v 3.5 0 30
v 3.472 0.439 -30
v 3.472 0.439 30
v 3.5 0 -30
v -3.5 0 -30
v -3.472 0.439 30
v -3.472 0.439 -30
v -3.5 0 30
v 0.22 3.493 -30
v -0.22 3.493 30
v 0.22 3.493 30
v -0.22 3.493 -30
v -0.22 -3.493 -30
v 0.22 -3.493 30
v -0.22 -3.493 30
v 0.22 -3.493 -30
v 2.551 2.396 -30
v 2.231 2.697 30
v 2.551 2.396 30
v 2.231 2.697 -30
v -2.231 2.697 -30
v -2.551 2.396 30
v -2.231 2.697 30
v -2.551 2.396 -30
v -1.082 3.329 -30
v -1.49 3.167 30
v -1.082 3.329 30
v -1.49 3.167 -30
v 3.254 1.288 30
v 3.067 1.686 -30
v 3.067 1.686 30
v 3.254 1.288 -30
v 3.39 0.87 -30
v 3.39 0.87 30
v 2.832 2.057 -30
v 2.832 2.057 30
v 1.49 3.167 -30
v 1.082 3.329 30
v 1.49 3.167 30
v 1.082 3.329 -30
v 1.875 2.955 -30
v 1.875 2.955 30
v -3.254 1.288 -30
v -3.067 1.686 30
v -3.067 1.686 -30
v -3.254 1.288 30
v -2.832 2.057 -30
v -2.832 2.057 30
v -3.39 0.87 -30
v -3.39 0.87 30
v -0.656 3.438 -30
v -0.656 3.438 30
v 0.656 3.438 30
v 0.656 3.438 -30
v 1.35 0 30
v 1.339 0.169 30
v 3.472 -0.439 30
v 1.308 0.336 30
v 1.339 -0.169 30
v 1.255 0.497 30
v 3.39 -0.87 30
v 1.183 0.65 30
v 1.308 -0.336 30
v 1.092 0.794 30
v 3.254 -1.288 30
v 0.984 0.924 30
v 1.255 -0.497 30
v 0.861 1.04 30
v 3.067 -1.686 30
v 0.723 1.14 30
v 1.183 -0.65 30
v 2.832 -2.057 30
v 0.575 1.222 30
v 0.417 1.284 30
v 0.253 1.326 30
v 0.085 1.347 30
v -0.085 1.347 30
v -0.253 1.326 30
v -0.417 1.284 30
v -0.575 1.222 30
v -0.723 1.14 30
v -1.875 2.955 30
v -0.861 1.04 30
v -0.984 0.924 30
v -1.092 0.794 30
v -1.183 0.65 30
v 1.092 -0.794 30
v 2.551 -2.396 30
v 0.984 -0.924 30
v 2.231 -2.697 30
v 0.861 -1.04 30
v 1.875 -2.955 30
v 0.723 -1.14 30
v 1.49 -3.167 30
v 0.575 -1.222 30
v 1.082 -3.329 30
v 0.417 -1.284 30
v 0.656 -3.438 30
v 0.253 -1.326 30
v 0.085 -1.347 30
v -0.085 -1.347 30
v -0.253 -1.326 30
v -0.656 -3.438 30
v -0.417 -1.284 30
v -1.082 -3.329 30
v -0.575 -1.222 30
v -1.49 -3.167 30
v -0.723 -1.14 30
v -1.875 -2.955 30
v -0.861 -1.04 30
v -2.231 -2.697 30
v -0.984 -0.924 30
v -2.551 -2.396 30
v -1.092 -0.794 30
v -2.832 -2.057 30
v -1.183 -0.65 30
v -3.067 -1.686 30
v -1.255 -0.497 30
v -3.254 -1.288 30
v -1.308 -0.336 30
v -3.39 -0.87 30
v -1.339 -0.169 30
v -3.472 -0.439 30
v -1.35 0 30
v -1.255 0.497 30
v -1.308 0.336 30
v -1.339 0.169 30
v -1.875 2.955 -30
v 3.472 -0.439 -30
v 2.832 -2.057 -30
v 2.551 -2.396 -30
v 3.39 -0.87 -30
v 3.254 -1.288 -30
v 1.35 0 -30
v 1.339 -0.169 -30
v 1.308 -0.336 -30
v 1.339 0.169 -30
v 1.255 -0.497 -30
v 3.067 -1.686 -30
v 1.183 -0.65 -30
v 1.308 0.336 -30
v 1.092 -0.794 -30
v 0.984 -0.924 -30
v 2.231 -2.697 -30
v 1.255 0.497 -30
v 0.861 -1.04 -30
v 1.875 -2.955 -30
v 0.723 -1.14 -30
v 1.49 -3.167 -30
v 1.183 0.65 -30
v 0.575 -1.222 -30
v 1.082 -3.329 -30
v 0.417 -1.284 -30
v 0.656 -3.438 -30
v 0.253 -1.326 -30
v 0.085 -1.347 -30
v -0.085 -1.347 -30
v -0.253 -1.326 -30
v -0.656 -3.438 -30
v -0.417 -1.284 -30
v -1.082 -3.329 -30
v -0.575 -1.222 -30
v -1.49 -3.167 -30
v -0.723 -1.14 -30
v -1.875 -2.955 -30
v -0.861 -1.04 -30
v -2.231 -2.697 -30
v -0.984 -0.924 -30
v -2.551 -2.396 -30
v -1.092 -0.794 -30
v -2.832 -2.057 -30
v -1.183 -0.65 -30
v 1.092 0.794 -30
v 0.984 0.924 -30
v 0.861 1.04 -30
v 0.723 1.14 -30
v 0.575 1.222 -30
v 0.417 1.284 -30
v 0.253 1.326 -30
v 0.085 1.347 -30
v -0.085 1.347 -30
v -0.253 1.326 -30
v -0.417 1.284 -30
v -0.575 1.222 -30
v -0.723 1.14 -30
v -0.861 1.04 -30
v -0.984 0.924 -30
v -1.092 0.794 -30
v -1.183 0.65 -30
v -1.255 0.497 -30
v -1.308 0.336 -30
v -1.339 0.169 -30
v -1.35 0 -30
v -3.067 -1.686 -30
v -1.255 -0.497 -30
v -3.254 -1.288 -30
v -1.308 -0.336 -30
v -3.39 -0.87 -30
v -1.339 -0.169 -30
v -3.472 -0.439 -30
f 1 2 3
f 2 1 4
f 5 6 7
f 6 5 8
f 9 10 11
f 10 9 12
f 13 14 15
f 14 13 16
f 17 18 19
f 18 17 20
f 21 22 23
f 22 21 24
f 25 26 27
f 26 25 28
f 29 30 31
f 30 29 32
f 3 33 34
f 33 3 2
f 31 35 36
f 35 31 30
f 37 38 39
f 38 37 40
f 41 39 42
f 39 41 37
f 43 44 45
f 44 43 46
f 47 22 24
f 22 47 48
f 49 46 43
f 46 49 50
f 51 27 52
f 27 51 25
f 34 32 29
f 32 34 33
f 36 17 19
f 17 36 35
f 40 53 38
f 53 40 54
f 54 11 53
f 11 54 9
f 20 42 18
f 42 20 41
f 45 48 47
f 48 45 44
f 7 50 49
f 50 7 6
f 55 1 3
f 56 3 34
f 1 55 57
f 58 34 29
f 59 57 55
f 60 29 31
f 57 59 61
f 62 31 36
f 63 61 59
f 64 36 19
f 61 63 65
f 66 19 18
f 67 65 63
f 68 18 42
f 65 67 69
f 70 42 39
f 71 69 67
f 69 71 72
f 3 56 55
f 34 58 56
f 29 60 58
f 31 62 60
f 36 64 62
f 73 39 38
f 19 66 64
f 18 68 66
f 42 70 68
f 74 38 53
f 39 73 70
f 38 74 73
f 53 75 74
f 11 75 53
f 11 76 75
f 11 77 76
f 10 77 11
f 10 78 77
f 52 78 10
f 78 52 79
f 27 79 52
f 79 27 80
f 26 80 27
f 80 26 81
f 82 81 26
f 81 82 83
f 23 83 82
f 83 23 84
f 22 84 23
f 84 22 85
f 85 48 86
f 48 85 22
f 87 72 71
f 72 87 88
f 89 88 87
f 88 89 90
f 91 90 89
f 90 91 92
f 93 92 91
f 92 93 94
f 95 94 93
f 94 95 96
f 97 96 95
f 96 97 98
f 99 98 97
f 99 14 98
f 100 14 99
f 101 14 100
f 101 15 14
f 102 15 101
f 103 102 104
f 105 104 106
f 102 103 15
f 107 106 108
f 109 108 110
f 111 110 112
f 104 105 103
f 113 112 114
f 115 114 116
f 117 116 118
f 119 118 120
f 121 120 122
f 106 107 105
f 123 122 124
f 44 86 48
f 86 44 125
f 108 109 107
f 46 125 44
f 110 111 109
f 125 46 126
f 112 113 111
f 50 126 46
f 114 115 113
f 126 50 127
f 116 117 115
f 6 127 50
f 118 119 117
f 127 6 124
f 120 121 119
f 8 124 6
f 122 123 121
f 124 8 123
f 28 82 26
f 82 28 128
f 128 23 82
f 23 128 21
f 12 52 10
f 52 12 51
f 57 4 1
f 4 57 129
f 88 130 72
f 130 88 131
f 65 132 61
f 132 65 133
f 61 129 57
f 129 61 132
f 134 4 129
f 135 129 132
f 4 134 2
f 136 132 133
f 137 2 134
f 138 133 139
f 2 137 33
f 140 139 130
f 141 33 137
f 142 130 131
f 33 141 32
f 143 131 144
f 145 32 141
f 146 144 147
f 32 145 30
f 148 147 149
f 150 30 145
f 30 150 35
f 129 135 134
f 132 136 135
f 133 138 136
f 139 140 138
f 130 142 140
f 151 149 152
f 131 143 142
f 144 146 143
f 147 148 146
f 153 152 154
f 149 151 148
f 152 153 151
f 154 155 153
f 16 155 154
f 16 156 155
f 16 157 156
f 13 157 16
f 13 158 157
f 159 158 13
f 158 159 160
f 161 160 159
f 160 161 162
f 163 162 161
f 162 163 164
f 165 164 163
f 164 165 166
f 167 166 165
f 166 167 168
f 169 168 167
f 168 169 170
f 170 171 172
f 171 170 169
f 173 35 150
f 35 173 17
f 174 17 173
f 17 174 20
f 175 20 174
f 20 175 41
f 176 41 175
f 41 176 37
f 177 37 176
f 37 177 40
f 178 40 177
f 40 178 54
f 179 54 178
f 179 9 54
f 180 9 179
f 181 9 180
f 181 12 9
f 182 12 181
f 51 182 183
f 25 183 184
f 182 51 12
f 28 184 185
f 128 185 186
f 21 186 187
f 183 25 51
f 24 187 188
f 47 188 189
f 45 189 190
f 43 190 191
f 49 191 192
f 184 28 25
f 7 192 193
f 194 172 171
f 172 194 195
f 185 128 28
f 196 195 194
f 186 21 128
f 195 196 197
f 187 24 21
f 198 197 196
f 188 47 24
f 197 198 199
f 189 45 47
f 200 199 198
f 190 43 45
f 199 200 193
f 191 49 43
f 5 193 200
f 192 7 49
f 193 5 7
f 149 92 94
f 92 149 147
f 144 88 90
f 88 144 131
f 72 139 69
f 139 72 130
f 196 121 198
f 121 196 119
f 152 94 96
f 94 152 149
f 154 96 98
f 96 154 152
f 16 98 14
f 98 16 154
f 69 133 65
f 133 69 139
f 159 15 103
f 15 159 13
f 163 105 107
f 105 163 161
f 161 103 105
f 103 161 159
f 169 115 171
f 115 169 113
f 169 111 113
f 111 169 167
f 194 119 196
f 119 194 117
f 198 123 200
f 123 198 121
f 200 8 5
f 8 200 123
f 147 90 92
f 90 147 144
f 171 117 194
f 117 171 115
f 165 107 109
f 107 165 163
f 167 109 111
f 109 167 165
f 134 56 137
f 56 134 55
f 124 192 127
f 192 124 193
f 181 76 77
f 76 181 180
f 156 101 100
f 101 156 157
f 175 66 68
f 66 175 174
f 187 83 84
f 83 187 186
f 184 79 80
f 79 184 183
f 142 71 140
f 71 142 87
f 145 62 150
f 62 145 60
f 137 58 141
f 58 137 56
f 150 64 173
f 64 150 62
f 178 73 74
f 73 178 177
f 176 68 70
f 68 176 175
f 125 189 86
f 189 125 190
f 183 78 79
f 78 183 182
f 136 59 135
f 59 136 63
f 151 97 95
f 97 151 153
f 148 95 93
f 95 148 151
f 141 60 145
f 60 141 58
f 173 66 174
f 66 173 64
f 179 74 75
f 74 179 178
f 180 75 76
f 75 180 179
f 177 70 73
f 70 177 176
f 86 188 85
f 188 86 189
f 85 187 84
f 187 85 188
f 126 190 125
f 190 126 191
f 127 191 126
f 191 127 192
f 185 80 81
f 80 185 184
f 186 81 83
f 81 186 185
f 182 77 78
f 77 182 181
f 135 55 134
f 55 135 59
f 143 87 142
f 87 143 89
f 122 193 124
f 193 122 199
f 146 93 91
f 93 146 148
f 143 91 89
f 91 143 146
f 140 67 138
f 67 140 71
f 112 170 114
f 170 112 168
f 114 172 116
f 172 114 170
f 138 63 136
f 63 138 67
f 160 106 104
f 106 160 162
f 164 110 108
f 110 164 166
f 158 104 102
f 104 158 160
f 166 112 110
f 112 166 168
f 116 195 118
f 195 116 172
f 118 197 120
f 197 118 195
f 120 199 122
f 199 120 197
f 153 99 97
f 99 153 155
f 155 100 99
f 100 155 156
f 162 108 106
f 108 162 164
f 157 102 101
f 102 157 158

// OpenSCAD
$fn = 50;


difference() {
	union() {
		translate(v = [0, 0, -30.0000000000]) {
			cylinder(h = 60, r = 3.5000000000);
		}
	}
	union() {
		translate(v = [0, 0, -100.0000000000]) {
			cylinder(h = 200, r = 1.3500000000);
		}
	}
}
